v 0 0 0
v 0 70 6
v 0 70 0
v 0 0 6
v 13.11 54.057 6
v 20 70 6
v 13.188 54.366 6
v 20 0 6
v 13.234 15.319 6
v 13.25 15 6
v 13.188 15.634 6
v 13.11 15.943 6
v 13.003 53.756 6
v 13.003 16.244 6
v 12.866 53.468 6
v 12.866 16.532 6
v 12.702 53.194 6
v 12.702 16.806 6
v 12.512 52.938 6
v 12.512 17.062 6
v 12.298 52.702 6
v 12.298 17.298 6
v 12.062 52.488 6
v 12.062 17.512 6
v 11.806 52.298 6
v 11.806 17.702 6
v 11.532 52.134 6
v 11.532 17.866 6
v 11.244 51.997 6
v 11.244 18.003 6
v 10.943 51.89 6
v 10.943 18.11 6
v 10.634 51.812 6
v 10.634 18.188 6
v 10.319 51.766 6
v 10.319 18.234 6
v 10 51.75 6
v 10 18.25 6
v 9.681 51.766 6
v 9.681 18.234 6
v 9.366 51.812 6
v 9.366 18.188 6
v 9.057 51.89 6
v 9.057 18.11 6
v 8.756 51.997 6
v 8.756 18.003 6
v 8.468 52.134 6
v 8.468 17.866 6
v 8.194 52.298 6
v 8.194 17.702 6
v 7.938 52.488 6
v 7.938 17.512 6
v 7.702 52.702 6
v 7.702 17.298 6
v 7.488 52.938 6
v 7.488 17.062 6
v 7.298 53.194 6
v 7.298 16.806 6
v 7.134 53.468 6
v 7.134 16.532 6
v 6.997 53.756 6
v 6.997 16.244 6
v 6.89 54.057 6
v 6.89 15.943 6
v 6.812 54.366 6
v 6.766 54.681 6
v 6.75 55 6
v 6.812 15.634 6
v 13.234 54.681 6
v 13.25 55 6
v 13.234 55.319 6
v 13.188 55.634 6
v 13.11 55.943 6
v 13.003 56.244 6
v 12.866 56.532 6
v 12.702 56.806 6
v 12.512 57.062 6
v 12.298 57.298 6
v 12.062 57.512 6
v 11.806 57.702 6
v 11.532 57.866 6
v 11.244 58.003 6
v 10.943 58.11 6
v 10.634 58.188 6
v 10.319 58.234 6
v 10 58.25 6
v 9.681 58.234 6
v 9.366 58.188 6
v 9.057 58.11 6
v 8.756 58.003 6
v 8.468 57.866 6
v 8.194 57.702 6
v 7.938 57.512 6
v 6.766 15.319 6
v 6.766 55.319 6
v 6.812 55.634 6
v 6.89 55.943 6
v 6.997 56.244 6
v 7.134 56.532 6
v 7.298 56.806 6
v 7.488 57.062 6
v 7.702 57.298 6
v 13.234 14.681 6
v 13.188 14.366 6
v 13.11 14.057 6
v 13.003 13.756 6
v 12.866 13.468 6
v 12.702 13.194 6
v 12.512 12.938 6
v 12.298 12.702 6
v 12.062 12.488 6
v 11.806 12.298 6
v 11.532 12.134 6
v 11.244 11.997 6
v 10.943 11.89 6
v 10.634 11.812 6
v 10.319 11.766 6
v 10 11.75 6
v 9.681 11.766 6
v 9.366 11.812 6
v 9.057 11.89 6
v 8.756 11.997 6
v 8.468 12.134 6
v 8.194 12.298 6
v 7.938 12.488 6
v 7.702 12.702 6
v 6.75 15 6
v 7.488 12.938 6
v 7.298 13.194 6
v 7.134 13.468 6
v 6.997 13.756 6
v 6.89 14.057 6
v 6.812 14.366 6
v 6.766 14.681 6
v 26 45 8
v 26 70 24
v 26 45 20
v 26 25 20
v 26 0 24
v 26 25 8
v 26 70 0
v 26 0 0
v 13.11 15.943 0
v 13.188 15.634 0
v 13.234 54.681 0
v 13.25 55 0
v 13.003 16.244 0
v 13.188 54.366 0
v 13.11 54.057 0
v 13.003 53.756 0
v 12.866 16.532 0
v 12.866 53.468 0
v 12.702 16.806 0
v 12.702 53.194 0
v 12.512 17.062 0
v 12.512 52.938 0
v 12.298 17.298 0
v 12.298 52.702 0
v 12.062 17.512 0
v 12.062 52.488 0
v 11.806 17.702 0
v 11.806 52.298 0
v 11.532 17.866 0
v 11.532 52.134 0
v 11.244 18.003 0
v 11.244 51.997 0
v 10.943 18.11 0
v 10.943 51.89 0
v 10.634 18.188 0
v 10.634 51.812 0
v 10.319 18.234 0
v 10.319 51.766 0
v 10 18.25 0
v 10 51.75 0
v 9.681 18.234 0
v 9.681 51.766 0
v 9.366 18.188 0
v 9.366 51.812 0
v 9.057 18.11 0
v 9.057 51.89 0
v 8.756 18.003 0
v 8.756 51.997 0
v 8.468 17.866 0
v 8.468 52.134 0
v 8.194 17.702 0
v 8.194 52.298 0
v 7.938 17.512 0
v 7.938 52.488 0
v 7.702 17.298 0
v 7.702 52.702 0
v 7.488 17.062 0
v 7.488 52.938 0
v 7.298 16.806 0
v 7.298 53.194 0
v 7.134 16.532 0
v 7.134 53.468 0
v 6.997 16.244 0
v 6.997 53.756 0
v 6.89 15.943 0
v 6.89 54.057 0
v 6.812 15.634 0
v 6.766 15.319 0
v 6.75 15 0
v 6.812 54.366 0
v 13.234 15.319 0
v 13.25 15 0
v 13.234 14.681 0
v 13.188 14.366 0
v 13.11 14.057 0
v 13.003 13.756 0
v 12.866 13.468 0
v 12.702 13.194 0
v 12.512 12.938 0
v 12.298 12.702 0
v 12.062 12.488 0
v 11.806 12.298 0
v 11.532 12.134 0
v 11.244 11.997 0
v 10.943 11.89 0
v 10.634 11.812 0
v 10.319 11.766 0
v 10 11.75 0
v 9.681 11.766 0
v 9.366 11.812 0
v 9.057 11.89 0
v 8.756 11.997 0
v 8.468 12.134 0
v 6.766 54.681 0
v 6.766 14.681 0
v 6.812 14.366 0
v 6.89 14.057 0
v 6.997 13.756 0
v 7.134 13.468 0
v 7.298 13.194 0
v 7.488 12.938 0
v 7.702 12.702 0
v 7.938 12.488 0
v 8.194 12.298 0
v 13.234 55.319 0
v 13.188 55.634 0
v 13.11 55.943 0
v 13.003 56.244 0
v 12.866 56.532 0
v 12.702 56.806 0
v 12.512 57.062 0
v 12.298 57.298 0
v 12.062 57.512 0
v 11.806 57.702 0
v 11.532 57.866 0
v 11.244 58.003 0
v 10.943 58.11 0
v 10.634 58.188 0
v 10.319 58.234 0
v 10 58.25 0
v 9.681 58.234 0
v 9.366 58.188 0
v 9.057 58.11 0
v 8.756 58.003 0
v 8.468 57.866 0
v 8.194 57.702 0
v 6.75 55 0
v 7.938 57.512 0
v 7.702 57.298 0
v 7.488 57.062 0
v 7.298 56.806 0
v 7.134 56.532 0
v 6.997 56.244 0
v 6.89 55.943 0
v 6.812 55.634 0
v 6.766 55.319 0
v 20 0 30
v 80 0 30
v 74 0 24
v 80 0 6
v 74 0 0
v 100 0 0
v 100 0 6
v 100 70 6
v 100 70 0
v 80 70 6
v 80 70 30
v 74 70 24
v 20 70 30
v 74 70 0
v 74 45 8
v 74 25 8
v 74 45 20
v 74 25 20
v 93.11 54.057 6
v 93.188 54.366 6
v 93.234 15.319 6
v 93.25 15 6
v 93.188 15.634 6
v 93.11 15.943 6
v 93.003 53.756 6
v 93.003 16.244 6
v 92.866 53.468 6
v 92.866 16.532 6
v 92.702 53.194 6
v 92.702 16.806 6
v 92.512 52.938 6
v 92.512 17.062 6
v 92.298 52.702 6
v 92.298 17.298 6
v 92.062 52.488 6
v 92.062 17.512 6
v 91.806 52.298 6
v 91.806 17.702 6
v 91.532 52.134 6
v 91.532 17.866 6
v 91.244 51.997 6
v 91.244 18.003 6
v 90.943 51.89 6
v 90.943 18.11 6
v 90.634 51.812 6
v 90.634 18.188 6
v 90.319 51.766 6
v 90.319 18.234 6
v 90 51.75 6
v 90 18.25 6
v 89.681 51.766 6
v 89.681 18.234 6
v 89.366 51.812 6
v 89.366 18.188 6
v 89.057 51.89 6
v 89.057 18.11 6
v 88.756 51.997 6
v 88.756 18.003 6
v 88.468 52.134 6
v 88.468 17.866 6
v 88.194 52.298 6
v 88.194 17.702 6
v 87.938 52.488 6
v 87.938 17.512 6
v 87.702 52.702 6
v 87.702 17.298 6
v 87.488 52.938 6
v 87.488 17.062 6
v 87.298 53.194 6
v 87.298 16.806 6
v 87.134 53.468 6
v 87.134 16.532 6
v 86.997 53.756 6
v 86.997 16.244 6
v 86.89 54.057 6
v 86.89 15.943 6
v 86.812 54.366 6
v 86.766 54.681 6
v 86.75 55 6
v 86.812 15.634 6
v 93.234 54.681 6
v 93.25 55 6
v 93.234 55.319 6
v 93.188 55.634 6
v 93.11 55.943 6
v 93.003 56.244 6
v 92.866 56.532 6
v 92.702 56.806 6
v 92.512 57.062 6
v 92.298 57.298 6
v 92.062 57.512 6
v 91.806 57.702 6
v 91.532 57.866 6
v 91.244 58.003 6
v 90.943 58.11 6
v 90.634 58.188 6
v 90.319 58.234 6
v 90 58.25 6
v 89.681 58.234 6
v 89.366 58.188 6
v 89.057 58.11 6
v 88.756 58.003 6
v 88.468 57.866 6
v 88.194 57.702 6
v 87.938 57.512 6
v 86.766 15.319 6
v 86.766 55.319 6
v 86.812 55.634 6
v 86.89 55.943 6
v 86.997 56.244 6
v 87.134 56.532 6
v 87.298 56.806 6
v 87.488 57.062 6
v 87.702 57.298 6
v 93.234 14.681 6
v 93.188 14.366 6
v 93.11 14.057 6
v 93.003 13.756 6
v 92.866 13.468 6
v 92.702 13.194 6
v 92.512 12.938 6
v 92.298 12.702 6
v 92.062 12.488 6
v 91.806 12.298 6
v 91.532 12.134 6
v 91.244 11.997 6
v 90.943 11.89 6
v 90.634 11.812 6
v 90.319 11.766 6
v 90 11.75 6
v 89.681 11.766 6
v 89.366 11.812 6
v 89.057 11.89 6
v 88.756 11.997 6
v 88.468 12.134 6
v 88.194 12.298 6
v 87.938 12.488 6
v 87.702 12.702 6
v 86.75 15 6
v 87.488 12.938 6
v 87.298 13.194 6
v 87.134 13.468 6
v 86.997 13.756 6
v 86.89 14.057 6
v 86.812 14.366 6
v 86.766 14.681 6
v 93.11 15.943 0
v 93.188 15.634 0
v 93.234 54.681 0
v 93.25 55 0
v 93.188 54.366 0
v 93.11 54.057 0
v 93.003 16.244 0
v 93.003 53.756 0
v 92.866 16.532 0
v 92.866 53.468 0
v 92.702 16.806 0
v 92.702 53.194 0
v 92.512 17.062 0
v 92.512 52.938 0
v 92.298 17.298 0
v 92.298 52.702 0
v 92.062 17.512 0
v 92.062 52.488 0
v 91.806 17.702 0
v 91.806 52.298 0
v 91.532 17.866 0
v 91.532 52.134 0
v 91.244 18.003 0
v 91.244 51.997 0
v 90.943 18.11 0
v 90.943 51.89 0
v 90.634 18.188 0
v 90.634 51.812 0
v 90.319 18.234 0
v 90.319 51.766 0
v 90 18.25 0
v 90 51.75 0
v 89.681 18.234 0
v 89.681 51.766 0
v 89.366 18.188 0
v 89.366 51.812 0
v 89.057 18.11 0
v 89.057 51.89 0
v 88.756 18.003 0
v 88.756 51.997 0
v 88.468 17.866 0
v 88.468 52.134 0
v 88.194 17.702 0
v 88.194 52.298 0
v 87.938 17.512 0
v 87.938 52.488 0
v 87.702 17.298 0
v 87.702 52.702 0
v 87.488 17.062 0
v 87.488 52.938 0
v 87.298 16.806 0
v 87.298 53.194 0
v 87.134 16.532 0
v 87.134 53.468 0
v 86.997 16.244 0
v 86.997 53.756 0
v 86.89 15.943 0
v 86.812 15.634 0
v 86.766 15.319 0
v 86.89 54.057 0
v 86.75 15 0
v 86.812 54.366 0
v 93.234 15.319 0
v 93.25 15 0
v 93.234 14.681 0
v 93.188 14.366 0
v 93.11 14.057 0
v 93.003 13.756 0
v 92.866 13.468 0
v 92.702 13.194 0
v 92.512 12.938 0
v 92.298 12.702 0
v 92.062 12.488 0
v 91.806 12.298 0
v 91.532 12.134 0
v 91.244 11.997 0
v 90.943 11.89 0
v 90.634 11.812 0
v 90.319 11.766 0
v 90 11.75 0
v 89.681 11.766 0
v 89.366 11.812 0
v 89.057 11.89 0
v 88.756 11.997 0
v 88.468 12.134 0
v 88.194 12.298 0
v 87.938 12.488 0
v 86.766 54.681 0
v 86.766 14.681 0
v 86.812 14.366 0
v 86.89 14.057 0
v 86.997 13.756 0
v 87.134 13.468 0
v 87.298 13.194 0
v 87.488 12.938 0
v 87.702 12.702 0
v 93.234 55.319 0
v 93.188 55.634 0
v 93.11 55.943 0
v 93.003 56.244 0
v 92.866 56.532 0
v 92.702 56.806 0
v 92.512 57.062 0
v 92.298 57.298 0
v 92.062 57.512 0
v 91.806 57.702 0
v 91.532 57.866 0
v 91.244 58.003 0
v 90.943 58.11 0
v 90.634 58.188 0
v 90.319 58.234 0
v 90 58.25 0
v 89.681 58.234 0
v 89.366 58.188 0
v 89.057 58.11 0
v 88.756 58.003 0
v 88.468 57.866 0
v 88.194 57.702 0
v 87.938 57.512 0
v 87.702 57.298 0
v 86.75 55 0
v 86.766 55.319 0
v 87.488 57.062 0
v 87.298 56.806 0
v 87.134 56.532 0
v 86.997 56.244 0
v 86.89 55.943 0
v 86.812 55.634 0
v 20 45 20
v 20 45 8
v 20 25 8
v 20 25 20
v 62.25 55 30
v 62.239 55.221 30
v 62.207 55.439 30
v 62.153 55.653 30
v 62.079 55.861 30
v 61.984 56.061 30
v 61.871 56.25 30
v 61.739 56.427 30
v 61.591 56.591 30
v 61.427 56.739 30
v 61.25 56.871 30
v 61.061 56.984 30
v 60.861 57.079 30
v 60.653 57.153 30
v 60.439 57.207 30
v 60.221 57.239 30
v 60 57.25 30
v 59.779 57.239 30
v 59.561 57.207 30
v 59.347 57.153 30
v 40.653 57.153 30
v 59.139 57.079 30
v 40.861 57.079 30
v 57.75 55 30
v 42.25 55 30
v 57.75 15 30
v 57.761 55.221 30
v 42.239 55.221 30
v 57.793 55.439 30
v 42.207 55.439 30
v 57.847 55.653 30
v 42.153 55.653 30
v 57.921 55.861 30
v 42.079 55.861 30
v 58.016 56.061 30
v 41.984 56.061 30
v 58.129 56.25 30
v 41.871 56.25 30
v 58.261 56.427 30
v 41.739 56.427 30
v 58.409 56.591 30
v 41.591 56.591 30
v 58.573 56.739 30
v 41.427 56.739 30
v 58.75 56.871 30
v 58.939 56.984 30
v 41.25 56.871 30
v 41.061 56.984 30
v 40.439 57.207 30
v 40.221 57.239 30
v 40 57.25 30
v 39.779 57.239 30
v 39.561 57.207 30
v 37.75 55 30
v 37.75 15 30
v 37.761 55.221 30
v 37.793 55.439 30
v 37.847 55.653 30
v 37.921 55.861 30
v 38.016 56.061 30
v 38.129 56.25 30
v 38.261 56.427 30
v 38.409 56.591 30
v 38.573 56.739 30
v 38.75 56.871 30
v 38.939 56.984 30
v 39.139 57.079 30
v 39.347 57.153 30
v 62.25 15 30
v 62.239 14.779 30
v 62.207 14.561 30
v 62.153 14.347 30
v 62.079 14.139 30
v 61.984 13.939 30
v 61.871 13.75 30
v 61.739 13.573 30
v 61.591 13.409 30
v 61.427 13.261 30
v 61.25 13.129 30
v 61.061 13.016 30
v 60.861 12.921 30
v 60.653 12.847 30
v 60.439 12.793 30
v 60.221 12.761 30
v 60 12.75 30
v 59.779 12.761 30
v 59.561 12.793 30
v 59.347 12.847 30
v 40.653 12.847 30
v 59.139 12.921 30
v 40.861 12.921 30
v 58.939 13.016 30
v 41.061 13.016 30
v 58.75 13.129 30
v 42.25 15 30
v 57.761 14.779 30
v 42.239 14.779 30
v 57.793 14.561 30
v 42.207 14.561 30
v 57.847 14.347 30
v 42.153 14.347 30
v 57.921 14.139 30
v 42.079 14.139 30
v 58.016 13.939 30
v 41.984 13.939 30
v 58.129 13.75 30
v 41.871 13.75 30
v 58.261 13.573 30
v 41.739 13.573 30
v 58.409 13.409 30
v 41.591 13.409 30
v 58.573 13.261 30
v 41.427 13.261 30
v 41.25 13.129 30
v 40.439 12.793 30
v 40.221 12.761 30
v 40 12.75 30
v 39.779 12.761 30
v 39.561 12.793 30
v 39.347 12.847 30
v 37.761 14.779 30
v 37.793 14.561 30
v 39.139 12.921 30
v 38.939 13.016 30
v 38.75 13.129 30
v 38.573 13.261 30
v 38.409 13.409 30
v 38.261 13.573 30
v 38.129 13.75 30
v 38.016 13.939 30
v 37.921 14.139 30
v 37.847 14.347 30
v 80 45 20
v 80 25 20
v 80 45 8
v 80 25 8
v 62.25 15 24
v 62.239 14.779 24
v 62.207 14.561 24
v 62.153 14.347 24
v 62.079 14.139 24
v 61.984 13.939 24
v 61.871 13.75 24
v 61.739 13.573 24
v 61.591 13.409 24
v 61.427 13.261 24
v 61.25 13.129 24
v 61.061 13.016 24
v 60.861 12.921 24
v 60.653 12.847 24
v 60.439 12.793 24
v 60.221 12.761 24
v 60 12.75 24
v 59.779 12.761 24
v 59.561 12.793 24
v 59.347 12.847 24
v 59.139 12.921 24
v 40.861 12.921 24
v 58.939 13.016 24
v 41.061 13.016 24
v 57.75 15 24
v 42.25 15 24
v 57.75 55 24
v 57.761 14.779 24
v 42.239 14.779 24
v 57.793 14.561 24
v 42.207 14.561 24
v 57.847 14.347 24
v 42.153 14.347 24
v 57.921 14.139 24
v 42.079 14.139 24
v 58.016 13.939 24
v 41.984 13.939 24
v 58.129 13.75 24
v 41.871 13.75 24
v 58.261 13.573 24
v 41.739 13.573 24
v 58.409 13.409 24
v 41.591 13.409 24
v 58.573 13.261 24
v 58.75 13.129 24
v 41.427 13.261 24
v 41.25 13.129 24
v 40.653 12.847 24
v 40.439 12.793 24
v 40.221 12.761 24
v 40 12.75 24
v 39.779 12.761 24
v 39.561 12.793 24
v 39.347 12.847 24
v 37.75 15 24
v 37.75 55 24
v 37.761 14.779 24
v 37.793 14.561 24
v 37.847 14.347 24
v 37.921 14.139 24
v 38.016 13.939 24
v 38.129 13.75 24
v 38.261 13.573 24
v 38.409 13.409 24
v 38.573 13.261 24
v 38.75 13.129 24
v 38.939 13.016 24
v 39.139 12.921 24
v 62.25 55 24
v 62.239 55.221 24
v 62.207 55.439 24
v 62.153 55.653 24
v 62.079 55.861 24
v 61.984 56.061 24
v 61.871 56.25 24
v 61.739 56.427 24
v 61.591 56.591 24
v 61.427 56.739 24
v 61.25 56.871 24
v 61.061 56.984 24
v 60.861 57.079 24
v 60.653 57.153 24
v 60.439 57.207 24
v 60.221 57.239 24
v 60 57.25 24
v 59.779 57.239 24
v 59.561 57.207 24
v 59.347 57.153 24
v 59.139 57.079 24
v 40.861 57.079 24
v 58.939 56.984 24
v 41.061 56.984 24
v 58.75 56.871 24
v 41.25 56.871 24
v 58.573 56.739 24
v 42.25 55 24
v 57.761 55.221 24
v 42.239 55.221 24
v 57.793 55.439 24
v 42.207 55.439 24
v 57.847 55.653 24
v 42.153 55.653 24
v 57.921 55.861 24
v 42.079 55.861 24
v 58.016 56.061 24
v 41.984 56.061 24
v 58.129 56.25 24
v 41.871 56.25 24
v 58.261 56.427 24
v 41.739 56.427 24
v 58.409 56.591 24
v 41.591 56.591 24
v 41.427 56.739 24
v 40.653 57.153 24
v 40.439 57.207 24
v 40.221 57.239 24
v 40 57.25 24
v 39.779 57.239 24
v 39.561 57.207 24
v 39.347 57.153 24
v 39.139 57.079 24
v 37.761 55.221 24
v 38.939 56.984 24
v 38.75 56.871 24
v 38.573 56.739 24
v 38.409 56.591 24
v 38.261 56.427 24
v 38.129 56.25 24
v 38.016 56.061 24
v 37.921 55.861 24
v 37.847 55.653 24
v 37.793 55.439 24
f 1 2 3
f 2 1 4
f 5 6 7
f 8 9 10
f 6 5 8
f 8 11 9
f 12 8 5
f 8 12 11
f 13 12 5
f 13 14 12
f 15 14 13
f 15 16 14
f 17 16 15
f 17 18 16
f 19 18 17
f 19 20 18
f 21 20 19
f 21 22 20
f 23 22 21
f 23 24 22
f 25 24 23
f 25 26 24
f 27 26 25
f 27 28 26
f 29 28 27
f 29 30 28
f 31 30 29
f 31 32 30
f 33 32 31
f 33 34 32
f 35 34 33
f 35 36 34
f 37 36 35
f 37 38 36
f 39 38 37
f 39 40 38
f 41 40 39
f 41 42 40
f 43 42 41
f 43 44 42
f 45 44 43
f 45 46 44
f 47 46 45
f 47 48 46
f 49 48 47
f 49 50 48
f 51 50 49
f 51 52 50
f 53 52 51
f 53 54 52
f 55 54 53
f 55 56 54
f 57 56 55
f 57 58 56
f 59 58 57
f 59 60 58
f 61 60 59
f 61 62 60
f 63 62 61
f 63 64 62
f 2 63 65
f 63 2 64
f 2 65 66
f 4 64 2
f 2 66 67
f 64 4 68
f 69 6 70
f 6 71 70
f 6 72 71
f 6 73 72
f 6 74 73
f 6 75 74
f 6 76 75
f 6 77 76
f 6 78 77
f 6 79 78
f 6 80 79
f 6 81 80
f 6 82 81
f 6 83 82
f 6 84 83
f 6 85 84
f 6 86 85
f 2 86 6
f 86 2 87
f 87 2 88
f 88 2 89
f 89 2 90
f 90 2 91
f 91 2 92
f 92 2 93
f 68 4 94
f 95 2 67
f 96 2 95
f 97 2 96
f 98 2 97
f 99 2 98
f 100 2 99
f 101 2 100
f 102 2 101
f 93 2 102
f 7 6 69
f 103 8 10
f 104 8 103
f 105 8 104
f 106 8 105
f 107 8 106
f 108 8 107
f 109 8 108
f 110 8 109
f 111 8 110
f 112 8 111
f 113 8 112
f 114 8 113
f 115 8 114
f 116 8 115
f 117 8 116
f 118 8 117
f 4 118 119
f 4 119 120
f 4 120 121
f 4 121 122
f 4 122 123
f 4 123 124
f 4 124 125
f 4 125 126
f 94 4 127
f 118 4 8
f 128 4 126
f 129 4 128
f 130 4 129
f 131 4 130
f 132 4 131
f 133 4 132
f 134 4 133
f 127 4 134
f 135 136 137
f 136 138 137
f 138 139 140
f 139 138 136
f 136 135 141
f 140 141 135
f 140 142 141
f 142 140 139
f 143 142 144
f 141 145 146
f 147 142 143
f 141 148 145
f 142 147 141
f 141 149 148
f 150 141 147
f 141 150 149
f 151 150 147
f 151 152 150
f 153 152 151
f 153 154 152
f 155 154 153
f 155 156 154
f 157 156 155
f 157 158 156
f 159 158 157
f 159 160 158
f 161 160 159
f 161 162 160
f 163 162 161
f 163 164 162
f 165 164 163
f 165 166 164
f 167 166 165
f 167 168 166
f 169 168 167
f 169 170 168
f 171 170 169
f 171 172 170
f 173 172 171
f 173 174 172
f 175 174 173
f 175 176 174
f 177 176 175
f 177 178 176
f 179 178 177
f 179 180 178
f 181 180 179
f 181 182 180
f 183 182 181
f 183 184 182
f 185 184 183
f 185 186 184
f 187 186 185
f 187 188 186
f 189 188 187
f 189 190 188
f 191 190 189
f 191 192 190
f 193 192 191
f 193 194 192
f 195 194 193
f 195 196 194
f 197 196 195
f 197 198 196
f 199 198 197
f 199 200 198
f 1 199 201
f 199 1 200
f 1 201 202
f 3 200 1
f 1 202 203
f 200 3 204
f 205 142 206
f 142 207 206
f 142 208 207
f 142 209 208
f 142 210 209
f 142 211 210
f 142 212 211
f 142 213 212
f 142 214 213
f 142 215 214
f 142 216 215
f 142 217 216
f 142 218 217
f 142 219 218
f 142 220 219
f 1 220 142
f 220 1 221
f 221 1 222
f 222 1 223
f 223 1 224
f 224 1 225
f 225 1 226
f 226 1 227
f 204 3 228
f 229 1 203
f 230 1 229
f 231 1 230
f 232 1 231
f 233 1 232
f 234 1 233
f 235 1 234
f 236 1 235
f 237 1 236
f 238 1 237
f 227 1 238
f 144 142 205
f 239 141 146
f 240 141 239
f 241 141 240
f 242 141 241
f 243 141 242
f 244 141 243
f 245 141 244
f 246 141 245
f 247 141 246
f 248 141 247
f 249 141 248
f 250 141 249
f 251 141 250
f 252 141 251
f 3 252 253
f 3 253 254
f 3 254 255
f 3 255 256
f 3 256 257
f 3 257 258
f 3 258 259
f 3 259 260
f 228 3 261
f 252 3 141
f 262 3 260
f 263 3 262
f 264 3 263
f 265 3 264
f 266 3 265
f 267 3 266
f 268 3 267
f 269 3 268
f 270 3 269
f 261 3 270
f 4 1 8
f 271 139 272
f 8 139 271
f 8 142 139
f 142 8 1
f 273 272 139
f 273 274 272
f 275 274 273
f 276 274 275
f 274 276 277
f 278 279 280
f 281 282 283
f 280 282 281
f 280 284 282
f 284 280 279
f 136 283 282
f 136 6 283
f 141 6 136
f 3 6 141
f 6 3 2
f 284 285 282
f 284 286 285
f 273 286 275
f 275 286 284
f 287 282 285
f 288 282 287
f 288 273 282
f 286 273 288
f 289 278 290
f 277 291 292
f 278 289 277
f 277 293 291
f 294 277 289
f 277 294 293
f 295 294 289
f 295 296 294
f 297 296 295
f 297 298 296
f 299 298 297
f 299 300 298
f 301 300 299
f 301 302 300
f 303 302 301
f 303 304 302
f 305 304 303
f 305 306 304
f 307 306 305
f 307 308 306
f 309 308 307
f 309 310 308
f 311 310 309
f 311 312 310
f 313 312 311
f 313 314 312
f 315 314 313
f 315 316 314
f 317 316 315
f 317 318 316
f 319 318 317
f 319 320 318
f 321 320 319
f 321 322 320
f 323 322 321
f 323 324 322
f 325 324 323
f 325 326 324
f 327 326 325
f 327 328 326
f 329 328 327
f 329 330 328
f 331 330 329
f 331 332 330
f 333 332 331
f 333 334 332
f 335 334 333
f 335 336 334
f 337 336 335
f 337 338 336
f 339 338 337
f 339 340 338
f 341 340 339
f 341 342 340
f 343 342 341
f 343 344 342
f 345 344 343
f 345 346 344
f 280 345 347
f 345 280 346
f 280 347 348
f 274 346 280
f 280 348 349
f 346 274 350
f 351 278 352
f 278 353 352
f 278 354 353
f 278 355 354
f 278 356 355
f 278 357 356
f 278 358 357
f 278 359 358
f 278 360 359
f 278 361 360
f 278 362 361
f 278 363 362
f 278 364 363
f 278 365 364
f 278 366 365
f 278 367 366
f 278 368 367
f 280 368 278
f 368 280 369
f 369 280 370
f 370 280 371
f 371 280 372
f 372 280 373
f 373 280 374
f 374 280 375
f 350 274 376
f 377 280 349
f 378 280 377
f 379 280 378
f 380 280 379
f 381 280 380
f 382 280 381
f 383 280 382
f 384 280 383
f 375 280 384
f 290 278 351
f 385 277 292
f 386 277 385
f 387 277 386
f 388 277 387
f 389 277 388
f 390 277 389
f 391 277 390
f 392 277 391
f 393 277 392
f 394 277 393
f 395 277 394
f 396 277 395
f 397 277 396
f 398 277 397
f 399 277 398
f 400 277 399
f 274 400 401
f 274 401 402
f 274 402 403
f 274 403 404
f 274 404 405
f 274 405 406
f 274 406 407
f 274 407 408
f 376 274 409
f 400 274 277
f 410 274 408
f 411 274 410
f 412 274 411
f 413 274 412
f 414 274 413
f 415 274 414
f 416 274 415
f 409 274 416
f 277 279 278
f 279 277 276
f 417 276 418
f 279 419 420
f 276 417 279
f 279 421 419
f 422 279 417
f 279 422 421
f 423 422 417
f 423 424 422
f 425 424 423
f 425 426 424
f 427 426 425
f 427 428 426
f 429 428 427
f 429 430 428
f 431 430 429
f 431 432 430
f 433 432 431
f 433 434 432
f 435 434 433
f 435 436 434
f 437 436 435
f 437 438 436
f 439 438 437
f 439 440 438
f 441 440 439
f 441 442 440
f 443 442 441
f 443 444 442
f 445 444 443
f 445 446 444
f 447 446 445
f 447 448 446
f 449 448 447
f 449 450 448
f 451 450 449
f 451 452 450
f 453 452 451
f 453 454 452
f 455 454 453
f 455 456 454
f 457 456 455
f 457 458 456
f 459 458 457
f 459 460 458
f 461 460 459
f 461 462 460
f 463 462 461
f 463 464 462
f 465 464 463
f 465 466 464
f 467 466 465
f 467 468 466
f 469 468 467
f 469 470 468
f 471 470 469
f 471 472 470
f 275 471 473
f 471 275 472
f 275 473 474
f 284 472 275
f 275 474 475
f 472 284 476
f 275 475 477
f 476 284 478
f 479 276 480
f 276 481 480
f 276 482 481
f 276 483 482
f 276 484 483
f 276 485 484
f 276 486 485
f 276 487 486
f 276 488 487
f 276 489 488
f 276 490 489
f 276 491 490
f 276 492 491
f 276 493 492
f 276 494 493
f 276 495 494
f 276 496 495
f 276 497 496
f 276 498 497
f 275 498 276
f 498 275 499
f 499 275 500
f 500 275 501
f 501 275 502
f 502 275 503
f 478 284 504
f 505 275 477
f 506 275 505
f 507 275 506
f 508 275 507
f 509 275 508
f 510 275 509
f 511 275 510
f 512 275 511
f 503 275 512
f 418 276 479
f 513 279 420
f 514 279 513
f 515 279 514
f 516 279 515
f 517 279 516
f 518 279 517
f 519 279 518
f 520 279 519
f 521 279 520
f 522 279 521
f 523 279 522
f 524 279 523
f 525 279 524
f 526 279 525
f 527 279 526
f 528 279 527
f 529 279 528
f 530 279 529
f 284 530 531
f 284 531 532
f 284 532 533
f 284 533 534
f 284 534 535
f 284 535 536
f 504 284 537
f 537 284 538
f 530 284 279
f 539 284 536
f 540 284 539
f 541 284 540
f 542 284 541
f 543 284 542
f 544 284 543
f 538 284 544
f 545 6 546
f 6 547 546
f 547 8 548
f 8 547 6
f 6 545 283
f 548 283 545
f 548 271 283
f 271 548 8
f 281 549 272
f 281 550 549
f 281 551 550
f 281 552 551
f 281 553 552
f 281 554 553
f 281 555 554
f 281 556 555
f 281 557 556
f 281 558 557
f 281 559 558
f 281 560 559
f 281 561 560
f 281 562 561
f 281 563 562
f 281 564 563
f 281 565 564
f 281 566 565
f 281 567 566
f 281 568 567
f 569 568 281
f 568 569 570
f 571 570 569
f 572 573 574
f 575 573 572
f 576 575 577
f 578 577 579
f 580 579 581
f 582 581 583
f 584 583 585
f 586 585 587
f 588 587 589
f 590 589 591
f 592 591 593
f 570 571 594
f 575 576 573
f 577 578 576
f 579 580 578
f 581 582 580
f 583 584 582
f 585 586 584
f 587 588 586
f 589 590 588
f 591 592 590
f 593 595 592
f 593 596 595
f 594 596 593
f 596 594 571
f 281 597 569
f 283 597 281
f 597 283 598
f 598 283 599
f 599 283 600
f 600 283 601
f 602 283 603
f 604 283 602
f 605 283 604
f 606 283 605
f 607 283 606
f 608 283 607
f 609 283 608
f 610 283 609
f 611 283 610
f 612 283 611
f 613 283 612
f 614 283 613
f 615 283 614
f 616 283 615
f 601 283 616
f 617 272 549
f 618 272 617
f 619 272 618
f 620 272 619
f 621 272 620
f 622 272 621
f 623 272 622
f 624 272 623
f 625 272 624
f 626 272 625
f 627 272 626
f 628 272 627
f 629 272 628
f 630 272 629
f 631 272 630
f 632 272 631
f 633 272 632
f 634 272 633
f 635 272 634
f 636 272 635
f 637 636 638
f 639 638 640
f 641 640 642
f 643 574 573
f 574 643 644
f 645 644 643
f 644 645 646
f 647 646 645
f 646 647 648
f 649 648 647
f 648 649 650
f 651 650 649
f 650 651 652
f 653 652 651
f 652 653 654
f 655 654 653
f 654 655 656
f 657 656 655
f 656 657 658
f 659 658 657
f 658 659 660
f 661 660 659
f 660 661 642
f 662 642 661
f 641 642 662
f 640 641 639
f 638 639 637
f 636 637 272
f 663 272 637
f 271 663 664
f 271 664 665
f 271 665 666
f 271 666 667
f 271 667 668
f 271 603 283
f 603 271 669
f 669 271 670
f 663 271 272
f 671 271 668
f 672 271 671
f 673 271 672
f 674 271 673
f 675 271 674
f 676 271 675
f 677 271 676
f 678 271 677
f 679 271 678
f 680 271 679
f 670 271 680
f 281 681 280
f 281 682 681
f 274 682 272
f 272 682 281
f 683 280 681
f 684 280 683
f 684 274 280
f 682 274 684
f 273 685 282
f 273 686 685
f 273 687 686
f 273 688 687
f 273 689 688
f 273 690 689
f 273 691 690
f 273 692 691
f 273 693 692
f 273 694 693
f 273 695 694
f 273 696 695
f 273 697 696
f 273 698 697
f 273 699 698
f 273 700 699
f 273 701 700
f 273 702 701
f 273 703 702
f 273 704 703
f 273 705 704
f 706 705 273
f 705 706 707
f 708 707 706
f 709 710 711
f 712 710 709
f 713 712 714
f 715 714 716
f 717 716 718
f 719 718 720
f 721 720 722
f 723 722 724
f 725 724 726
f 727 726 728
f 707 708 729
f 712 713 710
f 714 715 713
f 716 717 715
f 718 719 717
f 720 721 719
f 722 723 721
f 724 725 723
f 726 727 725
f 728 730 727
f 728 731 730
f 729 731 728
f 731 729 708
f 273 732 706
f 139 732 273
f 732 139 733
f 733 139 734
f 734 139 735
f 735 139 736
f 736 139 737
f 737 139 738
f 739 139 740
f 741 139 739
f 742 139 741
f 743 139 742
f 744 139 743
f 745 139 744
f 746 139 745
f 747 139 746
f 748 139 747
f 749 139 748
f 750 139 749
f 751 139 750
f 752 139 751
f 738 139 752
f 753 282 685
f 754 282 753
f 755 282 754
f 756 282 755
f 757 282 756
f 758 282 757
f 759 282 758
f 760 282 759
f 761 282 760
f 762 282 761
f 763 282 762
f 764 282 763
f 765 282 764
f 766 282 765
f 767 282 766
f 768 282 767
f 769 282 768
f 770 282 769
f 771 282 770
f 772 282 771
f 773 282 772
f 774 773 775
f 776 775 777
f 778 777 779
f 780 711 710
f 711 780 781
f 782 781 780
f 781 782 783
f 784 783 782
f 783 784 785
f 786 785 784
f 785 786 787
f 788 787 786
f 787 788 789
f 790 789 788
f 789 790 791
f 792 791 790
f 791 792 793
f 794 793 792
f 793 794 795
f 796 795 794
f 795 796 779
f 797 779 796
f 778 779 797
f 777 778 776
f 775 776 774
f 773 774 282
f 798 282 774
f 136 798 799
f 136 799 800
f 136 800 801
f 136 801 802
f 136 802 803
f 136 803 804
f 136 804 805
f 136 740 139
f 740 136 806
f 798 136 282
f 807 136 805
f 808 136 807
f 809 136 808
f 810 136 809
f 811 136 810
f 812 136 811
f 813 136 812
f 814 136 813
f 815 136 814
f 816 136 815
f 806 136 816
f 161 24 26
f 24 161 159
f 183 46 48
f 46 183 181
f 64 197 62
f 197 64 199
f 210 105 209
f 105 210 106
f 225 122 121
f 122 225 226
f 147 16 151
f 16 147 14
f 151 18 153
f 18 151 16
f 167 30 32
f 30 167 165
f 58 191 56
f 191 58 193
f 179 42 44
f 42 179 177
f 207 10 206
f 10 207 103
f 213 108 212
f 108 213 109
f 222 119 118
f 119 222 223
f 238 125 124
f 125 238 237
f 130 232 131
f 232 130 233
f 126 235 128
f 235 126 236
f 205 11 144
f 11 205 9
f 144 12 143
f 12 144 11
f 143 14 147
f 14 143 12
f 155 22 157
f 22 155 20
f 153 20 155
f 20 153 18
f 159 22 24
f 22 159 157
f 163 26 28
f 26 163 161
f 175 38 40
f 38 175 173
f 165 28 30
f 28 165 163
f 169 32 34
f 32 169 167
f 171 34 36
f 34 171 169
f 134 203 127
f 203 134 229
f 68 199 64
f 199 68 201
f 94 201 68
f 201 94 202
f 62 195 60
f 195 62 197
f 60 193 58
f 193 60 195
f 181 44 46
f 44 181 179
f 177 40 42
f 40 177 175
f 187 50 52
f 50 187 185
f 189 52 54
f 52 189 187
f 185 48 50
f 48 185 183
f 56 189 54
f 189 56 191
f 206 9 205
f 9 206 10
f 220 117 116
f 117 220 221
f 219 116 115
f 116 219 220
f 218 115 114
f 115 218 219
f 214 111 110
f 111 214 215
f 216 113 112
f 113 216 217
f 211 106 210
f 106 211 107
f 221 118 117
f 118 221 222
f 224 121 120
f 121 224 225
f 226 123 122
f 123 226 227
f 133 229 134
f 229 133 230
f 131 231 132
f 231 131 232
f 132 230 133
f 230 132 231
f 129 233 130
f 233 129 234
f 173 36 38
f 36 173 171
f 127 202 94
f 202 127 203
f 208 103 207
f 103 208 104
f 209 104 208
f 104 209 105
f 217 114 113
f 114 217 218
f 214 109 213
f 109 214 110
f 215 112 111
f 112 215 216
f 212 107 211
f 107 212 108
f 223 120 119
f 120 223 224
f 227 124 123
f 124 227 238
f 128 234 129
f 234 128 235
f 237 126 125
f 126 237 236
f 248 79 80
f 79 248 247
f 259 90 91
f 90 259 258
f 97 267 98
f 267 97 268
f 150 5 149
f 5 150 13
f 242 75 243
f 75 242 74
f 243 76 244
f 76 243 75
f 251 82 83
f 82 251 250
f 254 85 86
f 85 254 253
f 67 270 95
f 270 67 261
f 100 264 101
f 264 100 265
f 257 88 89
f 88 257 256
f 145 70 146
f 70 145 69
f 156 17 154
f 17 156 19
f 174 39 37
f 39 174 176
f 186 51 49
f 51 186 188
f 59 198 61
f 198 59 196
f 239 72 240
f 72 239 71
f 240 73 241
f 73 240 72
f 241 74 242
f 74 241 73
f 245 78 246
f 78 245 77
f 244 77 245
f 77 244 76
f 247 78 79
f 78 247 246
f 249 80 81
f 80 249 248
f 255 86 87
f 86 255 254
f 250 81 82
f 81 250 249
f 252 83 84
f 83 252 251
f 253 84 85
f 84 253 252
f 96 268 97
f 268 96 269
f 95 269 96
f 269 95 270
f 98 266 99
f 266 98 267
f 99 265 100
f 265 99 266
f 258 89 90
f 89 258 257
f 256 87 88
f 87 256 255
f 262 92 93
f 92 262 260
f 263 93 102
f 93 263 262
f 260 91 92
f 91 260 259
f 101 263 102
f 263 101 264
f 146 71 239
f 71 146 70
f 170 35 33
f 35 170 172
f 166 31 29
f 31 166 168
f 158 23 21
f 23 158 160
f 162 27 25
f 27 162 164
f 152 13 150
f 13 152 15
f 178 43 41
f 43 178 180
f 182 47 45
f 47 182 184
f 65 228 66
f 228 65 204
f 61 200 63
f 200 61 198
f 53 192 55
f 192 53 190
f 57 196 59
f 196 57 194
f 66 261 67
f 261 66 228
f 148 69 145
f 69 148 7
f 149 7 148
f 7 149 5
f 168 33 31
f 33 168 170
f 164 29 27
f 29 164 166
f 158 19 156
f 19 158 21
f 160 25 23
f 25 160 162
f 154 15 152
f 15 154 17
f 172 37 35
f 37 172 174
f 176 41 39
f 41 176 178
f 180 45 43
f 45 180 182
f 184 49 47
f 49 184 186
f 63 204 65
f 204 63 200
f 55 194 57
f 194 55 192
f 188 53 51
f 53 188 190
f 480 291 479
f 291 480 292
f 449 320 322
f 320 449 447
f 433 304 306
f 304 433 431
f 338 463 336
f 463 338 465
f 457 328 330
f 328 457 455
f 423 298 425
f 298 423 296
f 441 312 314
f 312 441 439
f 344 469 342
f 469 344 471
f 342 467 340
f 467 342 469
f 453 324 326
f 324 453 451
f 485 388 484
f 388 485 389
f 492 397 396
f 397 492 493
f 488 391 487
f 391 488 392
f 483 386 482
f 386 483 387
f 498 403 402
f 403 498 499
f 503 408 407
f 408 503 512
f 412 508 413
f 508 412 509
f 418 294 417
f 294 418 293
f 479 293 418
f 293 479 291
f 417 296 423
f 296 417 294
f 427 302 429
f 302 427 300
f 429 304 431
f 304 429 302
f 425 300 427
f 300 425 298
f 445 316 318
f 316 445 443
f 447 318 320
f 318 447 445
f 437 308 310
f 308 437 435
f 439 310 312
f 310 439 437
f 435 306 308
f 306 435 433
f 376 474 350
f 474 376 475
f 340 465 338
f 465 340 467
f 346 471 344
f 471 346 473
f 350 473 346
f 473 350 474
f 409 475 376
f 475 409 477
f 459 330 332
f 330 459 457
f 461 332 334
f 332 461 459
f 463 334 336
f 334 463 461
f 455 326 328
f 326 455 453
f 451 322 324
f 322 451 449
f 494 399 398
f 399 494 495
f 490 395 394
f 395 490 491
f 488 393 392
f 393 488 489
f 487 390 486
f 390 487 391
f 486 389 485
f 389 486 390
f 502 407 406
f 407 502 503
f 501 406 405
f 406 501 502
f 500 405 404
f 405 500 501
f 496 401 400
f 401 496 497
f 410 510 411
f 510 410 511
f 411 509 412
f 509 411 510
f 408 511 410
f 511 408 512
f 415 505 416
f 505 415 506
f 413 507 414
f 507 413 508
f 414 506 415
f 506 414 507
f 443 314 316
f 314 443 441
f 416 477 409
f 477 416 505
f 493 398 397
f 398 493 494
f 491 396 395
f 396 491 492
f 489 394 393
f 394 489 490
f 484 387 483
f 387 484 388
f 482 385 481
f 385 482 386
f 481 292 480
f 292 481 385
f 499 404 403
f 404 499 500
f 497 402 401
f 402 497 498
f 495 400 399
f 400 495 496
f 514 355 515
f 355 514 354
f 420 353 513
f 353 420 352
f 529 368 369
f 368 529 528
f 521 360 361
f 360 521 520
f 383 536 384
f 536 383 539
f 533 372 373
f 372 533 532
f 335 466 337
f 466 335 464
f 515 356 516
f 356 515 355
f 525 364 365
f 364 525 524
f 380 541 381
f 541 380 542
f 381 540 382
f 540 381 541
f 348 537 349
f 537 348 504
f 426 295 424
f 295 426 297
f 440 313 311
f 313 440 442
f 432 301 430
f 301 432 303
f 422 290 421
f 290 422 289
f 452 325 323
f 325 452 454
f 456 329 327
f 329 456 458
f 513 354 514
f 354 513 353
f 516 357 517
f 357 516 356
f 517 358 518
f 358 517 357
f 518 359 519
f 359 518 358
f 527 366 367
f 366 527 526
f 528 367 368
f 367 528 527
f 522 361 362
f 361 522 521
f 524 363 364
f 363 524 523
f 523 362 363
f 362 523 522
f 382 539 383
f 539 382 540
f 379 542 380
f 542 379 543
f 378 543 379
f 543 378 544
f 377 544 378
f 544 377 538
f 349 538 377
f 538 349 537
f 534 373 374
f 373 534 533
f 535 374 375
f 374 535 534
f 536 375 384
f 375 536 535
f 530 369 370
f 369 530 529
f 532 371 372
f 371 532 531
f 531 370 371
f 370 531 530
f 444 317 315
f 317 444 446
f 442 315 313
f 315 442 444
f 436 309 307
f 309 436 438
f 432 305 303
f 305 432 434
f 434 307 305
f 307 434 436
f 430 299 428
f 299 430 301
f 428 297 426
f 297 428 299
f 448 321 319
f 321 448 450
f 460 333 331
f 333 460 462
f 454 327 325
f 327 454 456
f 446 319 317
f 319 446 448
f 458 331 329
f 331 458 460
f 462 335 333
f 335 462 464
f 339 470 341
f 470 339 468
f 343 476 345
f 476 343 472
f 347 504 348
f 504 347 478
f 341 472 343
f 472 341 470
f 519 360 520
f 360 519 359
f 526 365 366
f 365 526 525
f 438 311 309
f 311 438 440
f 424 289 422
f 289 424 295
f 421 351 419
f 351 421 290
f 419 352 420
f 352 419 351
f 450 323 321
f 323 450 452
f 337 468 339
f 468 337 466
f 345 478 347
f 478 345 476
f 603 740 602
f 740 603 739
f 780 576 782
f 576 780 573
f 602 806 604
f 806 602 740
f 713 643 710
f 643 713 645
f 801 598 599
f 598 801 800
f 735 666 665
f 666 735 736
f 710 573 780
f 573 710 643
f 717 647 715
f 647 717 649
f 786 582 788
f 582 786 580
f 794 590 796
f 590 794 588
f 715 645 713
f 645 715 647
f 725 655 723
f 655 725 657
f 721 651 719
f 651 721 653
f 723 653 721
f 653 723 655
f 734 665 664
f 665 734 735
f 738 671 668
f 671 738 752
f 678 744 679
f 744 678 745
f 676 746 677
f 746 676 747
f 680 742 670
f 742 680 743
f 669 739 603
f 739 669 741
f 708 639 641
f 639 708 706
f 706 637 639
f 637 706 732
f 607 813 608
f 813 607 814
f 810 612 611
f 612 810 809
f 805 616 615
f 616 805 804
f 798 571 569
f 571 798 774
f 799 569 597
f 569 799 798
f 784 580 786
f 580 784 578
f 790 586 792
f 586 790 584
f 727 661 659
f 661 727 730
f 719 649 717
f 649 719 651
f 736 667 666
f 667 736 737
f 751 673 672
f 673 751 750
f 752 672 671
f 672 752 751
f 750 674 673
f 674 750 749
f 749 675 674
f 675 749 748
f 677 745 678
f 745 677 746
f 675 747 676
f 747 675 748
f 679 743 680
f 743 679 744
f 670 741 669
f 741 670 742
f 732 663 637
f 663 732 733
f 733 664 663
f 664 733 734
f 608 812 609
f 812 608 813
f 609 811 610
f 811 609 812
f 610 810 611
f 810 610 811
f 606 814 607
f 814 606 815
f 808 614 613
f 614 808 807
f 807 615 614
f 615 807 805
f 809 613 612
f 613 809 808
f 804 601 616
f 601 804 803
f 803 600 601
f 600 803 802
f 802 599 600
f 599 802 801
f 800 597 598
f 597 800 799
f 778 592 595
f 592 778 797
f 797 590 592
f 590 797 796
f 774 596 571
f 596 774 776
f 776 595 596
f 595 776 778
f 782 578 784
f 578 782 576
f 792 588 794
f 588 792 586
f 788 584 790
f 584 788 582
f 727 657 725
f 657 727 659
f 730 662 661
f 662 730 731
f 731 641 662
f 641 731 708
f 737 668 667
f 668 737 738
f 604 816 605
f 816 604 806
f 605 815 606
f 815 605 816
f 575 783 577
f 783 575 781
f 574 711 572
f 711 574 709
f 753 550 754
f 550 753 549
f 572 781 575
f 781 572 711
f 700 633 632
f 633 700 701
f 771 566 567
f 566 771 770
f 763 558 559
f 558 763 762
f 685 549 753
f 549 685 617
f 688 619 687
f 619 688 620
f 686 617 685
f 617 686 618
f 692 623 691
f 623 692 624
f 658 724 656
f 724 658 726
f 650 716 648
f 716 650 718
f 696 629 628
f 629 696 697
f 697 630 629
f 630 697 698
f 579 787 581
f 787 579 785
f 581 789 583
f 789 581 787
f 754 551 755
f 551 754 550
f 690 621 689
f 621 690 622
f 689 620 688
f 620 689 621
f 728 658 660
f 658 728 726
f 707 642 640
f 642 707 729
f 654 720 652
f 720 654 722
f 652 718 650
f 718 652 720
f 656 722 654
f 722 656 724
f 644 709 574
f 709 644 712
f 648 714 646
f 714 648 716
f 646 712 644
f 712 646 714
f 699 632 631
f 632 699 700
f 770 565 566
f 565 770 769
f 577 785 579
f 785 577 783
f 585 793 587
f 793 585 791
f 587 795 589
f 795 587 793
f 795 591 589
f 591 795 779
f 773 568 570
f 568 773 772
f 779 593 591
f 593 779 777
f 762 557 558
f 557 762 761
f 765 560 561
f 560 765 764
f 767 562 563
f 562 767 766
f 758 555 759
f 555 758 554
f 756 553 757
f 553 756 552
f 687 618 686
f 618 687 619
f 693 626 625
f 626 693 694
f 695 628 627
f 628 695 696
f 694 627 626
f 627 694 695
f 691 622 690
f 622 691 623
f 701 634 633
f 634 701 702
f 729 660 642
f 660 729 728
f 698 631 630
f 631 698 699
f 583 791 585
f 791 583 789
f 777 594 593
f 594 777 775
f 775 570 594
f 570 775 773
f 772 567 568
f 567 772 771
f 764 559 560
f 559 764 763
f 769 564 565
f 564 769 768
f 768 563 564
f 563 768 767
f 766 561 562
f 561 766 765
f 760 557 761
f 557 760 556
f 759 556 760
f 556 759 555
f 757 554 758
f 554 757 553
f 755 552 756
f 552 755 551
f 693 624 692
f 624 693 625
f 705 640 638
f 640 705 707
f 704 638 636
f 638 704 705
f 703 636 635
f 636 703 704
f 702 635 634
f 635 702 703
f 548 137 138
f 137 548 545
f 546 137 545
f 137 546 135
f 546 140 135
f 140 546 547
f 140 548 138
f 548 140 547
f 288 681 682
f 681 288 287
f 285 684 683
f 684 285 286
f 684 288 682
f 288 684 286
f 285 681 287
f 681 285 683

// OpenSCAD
// Original MechIntel educational model. CC0-1.0. Units: mm.
// Not a standardized or load-rated component.
$fn=96;
width=100; depth=70; height=30; wall=6; slot=4.5;
$fn=64;
difference(){
 union(){
 cube([26,depth,wall]);translate([74,0,0]) cube([26,depth,wall]);
 translate([20,0,0]) cube([wall,depth,height]);translate([74,0,0]) cube([wall,depth,height]);
 translate([20,0,height-wall]) cube([60,depth,wall]);
 }
 for(x=[10,90]) for(y=[15,55]) translate([x,y,-1]) cylinder(d=6.5,h=wall+2);
 for(x=[40,60]) hull(){translate([x,15,height-wall-1]) cylinder(d=slot,h=wall+2);translate([x,55,height-wall-1]) cylinder(d=slot,h=wall+2);}
 for(x=[19,73]) translate([x,25,8]) cube([wall+2,20,12]);
}
